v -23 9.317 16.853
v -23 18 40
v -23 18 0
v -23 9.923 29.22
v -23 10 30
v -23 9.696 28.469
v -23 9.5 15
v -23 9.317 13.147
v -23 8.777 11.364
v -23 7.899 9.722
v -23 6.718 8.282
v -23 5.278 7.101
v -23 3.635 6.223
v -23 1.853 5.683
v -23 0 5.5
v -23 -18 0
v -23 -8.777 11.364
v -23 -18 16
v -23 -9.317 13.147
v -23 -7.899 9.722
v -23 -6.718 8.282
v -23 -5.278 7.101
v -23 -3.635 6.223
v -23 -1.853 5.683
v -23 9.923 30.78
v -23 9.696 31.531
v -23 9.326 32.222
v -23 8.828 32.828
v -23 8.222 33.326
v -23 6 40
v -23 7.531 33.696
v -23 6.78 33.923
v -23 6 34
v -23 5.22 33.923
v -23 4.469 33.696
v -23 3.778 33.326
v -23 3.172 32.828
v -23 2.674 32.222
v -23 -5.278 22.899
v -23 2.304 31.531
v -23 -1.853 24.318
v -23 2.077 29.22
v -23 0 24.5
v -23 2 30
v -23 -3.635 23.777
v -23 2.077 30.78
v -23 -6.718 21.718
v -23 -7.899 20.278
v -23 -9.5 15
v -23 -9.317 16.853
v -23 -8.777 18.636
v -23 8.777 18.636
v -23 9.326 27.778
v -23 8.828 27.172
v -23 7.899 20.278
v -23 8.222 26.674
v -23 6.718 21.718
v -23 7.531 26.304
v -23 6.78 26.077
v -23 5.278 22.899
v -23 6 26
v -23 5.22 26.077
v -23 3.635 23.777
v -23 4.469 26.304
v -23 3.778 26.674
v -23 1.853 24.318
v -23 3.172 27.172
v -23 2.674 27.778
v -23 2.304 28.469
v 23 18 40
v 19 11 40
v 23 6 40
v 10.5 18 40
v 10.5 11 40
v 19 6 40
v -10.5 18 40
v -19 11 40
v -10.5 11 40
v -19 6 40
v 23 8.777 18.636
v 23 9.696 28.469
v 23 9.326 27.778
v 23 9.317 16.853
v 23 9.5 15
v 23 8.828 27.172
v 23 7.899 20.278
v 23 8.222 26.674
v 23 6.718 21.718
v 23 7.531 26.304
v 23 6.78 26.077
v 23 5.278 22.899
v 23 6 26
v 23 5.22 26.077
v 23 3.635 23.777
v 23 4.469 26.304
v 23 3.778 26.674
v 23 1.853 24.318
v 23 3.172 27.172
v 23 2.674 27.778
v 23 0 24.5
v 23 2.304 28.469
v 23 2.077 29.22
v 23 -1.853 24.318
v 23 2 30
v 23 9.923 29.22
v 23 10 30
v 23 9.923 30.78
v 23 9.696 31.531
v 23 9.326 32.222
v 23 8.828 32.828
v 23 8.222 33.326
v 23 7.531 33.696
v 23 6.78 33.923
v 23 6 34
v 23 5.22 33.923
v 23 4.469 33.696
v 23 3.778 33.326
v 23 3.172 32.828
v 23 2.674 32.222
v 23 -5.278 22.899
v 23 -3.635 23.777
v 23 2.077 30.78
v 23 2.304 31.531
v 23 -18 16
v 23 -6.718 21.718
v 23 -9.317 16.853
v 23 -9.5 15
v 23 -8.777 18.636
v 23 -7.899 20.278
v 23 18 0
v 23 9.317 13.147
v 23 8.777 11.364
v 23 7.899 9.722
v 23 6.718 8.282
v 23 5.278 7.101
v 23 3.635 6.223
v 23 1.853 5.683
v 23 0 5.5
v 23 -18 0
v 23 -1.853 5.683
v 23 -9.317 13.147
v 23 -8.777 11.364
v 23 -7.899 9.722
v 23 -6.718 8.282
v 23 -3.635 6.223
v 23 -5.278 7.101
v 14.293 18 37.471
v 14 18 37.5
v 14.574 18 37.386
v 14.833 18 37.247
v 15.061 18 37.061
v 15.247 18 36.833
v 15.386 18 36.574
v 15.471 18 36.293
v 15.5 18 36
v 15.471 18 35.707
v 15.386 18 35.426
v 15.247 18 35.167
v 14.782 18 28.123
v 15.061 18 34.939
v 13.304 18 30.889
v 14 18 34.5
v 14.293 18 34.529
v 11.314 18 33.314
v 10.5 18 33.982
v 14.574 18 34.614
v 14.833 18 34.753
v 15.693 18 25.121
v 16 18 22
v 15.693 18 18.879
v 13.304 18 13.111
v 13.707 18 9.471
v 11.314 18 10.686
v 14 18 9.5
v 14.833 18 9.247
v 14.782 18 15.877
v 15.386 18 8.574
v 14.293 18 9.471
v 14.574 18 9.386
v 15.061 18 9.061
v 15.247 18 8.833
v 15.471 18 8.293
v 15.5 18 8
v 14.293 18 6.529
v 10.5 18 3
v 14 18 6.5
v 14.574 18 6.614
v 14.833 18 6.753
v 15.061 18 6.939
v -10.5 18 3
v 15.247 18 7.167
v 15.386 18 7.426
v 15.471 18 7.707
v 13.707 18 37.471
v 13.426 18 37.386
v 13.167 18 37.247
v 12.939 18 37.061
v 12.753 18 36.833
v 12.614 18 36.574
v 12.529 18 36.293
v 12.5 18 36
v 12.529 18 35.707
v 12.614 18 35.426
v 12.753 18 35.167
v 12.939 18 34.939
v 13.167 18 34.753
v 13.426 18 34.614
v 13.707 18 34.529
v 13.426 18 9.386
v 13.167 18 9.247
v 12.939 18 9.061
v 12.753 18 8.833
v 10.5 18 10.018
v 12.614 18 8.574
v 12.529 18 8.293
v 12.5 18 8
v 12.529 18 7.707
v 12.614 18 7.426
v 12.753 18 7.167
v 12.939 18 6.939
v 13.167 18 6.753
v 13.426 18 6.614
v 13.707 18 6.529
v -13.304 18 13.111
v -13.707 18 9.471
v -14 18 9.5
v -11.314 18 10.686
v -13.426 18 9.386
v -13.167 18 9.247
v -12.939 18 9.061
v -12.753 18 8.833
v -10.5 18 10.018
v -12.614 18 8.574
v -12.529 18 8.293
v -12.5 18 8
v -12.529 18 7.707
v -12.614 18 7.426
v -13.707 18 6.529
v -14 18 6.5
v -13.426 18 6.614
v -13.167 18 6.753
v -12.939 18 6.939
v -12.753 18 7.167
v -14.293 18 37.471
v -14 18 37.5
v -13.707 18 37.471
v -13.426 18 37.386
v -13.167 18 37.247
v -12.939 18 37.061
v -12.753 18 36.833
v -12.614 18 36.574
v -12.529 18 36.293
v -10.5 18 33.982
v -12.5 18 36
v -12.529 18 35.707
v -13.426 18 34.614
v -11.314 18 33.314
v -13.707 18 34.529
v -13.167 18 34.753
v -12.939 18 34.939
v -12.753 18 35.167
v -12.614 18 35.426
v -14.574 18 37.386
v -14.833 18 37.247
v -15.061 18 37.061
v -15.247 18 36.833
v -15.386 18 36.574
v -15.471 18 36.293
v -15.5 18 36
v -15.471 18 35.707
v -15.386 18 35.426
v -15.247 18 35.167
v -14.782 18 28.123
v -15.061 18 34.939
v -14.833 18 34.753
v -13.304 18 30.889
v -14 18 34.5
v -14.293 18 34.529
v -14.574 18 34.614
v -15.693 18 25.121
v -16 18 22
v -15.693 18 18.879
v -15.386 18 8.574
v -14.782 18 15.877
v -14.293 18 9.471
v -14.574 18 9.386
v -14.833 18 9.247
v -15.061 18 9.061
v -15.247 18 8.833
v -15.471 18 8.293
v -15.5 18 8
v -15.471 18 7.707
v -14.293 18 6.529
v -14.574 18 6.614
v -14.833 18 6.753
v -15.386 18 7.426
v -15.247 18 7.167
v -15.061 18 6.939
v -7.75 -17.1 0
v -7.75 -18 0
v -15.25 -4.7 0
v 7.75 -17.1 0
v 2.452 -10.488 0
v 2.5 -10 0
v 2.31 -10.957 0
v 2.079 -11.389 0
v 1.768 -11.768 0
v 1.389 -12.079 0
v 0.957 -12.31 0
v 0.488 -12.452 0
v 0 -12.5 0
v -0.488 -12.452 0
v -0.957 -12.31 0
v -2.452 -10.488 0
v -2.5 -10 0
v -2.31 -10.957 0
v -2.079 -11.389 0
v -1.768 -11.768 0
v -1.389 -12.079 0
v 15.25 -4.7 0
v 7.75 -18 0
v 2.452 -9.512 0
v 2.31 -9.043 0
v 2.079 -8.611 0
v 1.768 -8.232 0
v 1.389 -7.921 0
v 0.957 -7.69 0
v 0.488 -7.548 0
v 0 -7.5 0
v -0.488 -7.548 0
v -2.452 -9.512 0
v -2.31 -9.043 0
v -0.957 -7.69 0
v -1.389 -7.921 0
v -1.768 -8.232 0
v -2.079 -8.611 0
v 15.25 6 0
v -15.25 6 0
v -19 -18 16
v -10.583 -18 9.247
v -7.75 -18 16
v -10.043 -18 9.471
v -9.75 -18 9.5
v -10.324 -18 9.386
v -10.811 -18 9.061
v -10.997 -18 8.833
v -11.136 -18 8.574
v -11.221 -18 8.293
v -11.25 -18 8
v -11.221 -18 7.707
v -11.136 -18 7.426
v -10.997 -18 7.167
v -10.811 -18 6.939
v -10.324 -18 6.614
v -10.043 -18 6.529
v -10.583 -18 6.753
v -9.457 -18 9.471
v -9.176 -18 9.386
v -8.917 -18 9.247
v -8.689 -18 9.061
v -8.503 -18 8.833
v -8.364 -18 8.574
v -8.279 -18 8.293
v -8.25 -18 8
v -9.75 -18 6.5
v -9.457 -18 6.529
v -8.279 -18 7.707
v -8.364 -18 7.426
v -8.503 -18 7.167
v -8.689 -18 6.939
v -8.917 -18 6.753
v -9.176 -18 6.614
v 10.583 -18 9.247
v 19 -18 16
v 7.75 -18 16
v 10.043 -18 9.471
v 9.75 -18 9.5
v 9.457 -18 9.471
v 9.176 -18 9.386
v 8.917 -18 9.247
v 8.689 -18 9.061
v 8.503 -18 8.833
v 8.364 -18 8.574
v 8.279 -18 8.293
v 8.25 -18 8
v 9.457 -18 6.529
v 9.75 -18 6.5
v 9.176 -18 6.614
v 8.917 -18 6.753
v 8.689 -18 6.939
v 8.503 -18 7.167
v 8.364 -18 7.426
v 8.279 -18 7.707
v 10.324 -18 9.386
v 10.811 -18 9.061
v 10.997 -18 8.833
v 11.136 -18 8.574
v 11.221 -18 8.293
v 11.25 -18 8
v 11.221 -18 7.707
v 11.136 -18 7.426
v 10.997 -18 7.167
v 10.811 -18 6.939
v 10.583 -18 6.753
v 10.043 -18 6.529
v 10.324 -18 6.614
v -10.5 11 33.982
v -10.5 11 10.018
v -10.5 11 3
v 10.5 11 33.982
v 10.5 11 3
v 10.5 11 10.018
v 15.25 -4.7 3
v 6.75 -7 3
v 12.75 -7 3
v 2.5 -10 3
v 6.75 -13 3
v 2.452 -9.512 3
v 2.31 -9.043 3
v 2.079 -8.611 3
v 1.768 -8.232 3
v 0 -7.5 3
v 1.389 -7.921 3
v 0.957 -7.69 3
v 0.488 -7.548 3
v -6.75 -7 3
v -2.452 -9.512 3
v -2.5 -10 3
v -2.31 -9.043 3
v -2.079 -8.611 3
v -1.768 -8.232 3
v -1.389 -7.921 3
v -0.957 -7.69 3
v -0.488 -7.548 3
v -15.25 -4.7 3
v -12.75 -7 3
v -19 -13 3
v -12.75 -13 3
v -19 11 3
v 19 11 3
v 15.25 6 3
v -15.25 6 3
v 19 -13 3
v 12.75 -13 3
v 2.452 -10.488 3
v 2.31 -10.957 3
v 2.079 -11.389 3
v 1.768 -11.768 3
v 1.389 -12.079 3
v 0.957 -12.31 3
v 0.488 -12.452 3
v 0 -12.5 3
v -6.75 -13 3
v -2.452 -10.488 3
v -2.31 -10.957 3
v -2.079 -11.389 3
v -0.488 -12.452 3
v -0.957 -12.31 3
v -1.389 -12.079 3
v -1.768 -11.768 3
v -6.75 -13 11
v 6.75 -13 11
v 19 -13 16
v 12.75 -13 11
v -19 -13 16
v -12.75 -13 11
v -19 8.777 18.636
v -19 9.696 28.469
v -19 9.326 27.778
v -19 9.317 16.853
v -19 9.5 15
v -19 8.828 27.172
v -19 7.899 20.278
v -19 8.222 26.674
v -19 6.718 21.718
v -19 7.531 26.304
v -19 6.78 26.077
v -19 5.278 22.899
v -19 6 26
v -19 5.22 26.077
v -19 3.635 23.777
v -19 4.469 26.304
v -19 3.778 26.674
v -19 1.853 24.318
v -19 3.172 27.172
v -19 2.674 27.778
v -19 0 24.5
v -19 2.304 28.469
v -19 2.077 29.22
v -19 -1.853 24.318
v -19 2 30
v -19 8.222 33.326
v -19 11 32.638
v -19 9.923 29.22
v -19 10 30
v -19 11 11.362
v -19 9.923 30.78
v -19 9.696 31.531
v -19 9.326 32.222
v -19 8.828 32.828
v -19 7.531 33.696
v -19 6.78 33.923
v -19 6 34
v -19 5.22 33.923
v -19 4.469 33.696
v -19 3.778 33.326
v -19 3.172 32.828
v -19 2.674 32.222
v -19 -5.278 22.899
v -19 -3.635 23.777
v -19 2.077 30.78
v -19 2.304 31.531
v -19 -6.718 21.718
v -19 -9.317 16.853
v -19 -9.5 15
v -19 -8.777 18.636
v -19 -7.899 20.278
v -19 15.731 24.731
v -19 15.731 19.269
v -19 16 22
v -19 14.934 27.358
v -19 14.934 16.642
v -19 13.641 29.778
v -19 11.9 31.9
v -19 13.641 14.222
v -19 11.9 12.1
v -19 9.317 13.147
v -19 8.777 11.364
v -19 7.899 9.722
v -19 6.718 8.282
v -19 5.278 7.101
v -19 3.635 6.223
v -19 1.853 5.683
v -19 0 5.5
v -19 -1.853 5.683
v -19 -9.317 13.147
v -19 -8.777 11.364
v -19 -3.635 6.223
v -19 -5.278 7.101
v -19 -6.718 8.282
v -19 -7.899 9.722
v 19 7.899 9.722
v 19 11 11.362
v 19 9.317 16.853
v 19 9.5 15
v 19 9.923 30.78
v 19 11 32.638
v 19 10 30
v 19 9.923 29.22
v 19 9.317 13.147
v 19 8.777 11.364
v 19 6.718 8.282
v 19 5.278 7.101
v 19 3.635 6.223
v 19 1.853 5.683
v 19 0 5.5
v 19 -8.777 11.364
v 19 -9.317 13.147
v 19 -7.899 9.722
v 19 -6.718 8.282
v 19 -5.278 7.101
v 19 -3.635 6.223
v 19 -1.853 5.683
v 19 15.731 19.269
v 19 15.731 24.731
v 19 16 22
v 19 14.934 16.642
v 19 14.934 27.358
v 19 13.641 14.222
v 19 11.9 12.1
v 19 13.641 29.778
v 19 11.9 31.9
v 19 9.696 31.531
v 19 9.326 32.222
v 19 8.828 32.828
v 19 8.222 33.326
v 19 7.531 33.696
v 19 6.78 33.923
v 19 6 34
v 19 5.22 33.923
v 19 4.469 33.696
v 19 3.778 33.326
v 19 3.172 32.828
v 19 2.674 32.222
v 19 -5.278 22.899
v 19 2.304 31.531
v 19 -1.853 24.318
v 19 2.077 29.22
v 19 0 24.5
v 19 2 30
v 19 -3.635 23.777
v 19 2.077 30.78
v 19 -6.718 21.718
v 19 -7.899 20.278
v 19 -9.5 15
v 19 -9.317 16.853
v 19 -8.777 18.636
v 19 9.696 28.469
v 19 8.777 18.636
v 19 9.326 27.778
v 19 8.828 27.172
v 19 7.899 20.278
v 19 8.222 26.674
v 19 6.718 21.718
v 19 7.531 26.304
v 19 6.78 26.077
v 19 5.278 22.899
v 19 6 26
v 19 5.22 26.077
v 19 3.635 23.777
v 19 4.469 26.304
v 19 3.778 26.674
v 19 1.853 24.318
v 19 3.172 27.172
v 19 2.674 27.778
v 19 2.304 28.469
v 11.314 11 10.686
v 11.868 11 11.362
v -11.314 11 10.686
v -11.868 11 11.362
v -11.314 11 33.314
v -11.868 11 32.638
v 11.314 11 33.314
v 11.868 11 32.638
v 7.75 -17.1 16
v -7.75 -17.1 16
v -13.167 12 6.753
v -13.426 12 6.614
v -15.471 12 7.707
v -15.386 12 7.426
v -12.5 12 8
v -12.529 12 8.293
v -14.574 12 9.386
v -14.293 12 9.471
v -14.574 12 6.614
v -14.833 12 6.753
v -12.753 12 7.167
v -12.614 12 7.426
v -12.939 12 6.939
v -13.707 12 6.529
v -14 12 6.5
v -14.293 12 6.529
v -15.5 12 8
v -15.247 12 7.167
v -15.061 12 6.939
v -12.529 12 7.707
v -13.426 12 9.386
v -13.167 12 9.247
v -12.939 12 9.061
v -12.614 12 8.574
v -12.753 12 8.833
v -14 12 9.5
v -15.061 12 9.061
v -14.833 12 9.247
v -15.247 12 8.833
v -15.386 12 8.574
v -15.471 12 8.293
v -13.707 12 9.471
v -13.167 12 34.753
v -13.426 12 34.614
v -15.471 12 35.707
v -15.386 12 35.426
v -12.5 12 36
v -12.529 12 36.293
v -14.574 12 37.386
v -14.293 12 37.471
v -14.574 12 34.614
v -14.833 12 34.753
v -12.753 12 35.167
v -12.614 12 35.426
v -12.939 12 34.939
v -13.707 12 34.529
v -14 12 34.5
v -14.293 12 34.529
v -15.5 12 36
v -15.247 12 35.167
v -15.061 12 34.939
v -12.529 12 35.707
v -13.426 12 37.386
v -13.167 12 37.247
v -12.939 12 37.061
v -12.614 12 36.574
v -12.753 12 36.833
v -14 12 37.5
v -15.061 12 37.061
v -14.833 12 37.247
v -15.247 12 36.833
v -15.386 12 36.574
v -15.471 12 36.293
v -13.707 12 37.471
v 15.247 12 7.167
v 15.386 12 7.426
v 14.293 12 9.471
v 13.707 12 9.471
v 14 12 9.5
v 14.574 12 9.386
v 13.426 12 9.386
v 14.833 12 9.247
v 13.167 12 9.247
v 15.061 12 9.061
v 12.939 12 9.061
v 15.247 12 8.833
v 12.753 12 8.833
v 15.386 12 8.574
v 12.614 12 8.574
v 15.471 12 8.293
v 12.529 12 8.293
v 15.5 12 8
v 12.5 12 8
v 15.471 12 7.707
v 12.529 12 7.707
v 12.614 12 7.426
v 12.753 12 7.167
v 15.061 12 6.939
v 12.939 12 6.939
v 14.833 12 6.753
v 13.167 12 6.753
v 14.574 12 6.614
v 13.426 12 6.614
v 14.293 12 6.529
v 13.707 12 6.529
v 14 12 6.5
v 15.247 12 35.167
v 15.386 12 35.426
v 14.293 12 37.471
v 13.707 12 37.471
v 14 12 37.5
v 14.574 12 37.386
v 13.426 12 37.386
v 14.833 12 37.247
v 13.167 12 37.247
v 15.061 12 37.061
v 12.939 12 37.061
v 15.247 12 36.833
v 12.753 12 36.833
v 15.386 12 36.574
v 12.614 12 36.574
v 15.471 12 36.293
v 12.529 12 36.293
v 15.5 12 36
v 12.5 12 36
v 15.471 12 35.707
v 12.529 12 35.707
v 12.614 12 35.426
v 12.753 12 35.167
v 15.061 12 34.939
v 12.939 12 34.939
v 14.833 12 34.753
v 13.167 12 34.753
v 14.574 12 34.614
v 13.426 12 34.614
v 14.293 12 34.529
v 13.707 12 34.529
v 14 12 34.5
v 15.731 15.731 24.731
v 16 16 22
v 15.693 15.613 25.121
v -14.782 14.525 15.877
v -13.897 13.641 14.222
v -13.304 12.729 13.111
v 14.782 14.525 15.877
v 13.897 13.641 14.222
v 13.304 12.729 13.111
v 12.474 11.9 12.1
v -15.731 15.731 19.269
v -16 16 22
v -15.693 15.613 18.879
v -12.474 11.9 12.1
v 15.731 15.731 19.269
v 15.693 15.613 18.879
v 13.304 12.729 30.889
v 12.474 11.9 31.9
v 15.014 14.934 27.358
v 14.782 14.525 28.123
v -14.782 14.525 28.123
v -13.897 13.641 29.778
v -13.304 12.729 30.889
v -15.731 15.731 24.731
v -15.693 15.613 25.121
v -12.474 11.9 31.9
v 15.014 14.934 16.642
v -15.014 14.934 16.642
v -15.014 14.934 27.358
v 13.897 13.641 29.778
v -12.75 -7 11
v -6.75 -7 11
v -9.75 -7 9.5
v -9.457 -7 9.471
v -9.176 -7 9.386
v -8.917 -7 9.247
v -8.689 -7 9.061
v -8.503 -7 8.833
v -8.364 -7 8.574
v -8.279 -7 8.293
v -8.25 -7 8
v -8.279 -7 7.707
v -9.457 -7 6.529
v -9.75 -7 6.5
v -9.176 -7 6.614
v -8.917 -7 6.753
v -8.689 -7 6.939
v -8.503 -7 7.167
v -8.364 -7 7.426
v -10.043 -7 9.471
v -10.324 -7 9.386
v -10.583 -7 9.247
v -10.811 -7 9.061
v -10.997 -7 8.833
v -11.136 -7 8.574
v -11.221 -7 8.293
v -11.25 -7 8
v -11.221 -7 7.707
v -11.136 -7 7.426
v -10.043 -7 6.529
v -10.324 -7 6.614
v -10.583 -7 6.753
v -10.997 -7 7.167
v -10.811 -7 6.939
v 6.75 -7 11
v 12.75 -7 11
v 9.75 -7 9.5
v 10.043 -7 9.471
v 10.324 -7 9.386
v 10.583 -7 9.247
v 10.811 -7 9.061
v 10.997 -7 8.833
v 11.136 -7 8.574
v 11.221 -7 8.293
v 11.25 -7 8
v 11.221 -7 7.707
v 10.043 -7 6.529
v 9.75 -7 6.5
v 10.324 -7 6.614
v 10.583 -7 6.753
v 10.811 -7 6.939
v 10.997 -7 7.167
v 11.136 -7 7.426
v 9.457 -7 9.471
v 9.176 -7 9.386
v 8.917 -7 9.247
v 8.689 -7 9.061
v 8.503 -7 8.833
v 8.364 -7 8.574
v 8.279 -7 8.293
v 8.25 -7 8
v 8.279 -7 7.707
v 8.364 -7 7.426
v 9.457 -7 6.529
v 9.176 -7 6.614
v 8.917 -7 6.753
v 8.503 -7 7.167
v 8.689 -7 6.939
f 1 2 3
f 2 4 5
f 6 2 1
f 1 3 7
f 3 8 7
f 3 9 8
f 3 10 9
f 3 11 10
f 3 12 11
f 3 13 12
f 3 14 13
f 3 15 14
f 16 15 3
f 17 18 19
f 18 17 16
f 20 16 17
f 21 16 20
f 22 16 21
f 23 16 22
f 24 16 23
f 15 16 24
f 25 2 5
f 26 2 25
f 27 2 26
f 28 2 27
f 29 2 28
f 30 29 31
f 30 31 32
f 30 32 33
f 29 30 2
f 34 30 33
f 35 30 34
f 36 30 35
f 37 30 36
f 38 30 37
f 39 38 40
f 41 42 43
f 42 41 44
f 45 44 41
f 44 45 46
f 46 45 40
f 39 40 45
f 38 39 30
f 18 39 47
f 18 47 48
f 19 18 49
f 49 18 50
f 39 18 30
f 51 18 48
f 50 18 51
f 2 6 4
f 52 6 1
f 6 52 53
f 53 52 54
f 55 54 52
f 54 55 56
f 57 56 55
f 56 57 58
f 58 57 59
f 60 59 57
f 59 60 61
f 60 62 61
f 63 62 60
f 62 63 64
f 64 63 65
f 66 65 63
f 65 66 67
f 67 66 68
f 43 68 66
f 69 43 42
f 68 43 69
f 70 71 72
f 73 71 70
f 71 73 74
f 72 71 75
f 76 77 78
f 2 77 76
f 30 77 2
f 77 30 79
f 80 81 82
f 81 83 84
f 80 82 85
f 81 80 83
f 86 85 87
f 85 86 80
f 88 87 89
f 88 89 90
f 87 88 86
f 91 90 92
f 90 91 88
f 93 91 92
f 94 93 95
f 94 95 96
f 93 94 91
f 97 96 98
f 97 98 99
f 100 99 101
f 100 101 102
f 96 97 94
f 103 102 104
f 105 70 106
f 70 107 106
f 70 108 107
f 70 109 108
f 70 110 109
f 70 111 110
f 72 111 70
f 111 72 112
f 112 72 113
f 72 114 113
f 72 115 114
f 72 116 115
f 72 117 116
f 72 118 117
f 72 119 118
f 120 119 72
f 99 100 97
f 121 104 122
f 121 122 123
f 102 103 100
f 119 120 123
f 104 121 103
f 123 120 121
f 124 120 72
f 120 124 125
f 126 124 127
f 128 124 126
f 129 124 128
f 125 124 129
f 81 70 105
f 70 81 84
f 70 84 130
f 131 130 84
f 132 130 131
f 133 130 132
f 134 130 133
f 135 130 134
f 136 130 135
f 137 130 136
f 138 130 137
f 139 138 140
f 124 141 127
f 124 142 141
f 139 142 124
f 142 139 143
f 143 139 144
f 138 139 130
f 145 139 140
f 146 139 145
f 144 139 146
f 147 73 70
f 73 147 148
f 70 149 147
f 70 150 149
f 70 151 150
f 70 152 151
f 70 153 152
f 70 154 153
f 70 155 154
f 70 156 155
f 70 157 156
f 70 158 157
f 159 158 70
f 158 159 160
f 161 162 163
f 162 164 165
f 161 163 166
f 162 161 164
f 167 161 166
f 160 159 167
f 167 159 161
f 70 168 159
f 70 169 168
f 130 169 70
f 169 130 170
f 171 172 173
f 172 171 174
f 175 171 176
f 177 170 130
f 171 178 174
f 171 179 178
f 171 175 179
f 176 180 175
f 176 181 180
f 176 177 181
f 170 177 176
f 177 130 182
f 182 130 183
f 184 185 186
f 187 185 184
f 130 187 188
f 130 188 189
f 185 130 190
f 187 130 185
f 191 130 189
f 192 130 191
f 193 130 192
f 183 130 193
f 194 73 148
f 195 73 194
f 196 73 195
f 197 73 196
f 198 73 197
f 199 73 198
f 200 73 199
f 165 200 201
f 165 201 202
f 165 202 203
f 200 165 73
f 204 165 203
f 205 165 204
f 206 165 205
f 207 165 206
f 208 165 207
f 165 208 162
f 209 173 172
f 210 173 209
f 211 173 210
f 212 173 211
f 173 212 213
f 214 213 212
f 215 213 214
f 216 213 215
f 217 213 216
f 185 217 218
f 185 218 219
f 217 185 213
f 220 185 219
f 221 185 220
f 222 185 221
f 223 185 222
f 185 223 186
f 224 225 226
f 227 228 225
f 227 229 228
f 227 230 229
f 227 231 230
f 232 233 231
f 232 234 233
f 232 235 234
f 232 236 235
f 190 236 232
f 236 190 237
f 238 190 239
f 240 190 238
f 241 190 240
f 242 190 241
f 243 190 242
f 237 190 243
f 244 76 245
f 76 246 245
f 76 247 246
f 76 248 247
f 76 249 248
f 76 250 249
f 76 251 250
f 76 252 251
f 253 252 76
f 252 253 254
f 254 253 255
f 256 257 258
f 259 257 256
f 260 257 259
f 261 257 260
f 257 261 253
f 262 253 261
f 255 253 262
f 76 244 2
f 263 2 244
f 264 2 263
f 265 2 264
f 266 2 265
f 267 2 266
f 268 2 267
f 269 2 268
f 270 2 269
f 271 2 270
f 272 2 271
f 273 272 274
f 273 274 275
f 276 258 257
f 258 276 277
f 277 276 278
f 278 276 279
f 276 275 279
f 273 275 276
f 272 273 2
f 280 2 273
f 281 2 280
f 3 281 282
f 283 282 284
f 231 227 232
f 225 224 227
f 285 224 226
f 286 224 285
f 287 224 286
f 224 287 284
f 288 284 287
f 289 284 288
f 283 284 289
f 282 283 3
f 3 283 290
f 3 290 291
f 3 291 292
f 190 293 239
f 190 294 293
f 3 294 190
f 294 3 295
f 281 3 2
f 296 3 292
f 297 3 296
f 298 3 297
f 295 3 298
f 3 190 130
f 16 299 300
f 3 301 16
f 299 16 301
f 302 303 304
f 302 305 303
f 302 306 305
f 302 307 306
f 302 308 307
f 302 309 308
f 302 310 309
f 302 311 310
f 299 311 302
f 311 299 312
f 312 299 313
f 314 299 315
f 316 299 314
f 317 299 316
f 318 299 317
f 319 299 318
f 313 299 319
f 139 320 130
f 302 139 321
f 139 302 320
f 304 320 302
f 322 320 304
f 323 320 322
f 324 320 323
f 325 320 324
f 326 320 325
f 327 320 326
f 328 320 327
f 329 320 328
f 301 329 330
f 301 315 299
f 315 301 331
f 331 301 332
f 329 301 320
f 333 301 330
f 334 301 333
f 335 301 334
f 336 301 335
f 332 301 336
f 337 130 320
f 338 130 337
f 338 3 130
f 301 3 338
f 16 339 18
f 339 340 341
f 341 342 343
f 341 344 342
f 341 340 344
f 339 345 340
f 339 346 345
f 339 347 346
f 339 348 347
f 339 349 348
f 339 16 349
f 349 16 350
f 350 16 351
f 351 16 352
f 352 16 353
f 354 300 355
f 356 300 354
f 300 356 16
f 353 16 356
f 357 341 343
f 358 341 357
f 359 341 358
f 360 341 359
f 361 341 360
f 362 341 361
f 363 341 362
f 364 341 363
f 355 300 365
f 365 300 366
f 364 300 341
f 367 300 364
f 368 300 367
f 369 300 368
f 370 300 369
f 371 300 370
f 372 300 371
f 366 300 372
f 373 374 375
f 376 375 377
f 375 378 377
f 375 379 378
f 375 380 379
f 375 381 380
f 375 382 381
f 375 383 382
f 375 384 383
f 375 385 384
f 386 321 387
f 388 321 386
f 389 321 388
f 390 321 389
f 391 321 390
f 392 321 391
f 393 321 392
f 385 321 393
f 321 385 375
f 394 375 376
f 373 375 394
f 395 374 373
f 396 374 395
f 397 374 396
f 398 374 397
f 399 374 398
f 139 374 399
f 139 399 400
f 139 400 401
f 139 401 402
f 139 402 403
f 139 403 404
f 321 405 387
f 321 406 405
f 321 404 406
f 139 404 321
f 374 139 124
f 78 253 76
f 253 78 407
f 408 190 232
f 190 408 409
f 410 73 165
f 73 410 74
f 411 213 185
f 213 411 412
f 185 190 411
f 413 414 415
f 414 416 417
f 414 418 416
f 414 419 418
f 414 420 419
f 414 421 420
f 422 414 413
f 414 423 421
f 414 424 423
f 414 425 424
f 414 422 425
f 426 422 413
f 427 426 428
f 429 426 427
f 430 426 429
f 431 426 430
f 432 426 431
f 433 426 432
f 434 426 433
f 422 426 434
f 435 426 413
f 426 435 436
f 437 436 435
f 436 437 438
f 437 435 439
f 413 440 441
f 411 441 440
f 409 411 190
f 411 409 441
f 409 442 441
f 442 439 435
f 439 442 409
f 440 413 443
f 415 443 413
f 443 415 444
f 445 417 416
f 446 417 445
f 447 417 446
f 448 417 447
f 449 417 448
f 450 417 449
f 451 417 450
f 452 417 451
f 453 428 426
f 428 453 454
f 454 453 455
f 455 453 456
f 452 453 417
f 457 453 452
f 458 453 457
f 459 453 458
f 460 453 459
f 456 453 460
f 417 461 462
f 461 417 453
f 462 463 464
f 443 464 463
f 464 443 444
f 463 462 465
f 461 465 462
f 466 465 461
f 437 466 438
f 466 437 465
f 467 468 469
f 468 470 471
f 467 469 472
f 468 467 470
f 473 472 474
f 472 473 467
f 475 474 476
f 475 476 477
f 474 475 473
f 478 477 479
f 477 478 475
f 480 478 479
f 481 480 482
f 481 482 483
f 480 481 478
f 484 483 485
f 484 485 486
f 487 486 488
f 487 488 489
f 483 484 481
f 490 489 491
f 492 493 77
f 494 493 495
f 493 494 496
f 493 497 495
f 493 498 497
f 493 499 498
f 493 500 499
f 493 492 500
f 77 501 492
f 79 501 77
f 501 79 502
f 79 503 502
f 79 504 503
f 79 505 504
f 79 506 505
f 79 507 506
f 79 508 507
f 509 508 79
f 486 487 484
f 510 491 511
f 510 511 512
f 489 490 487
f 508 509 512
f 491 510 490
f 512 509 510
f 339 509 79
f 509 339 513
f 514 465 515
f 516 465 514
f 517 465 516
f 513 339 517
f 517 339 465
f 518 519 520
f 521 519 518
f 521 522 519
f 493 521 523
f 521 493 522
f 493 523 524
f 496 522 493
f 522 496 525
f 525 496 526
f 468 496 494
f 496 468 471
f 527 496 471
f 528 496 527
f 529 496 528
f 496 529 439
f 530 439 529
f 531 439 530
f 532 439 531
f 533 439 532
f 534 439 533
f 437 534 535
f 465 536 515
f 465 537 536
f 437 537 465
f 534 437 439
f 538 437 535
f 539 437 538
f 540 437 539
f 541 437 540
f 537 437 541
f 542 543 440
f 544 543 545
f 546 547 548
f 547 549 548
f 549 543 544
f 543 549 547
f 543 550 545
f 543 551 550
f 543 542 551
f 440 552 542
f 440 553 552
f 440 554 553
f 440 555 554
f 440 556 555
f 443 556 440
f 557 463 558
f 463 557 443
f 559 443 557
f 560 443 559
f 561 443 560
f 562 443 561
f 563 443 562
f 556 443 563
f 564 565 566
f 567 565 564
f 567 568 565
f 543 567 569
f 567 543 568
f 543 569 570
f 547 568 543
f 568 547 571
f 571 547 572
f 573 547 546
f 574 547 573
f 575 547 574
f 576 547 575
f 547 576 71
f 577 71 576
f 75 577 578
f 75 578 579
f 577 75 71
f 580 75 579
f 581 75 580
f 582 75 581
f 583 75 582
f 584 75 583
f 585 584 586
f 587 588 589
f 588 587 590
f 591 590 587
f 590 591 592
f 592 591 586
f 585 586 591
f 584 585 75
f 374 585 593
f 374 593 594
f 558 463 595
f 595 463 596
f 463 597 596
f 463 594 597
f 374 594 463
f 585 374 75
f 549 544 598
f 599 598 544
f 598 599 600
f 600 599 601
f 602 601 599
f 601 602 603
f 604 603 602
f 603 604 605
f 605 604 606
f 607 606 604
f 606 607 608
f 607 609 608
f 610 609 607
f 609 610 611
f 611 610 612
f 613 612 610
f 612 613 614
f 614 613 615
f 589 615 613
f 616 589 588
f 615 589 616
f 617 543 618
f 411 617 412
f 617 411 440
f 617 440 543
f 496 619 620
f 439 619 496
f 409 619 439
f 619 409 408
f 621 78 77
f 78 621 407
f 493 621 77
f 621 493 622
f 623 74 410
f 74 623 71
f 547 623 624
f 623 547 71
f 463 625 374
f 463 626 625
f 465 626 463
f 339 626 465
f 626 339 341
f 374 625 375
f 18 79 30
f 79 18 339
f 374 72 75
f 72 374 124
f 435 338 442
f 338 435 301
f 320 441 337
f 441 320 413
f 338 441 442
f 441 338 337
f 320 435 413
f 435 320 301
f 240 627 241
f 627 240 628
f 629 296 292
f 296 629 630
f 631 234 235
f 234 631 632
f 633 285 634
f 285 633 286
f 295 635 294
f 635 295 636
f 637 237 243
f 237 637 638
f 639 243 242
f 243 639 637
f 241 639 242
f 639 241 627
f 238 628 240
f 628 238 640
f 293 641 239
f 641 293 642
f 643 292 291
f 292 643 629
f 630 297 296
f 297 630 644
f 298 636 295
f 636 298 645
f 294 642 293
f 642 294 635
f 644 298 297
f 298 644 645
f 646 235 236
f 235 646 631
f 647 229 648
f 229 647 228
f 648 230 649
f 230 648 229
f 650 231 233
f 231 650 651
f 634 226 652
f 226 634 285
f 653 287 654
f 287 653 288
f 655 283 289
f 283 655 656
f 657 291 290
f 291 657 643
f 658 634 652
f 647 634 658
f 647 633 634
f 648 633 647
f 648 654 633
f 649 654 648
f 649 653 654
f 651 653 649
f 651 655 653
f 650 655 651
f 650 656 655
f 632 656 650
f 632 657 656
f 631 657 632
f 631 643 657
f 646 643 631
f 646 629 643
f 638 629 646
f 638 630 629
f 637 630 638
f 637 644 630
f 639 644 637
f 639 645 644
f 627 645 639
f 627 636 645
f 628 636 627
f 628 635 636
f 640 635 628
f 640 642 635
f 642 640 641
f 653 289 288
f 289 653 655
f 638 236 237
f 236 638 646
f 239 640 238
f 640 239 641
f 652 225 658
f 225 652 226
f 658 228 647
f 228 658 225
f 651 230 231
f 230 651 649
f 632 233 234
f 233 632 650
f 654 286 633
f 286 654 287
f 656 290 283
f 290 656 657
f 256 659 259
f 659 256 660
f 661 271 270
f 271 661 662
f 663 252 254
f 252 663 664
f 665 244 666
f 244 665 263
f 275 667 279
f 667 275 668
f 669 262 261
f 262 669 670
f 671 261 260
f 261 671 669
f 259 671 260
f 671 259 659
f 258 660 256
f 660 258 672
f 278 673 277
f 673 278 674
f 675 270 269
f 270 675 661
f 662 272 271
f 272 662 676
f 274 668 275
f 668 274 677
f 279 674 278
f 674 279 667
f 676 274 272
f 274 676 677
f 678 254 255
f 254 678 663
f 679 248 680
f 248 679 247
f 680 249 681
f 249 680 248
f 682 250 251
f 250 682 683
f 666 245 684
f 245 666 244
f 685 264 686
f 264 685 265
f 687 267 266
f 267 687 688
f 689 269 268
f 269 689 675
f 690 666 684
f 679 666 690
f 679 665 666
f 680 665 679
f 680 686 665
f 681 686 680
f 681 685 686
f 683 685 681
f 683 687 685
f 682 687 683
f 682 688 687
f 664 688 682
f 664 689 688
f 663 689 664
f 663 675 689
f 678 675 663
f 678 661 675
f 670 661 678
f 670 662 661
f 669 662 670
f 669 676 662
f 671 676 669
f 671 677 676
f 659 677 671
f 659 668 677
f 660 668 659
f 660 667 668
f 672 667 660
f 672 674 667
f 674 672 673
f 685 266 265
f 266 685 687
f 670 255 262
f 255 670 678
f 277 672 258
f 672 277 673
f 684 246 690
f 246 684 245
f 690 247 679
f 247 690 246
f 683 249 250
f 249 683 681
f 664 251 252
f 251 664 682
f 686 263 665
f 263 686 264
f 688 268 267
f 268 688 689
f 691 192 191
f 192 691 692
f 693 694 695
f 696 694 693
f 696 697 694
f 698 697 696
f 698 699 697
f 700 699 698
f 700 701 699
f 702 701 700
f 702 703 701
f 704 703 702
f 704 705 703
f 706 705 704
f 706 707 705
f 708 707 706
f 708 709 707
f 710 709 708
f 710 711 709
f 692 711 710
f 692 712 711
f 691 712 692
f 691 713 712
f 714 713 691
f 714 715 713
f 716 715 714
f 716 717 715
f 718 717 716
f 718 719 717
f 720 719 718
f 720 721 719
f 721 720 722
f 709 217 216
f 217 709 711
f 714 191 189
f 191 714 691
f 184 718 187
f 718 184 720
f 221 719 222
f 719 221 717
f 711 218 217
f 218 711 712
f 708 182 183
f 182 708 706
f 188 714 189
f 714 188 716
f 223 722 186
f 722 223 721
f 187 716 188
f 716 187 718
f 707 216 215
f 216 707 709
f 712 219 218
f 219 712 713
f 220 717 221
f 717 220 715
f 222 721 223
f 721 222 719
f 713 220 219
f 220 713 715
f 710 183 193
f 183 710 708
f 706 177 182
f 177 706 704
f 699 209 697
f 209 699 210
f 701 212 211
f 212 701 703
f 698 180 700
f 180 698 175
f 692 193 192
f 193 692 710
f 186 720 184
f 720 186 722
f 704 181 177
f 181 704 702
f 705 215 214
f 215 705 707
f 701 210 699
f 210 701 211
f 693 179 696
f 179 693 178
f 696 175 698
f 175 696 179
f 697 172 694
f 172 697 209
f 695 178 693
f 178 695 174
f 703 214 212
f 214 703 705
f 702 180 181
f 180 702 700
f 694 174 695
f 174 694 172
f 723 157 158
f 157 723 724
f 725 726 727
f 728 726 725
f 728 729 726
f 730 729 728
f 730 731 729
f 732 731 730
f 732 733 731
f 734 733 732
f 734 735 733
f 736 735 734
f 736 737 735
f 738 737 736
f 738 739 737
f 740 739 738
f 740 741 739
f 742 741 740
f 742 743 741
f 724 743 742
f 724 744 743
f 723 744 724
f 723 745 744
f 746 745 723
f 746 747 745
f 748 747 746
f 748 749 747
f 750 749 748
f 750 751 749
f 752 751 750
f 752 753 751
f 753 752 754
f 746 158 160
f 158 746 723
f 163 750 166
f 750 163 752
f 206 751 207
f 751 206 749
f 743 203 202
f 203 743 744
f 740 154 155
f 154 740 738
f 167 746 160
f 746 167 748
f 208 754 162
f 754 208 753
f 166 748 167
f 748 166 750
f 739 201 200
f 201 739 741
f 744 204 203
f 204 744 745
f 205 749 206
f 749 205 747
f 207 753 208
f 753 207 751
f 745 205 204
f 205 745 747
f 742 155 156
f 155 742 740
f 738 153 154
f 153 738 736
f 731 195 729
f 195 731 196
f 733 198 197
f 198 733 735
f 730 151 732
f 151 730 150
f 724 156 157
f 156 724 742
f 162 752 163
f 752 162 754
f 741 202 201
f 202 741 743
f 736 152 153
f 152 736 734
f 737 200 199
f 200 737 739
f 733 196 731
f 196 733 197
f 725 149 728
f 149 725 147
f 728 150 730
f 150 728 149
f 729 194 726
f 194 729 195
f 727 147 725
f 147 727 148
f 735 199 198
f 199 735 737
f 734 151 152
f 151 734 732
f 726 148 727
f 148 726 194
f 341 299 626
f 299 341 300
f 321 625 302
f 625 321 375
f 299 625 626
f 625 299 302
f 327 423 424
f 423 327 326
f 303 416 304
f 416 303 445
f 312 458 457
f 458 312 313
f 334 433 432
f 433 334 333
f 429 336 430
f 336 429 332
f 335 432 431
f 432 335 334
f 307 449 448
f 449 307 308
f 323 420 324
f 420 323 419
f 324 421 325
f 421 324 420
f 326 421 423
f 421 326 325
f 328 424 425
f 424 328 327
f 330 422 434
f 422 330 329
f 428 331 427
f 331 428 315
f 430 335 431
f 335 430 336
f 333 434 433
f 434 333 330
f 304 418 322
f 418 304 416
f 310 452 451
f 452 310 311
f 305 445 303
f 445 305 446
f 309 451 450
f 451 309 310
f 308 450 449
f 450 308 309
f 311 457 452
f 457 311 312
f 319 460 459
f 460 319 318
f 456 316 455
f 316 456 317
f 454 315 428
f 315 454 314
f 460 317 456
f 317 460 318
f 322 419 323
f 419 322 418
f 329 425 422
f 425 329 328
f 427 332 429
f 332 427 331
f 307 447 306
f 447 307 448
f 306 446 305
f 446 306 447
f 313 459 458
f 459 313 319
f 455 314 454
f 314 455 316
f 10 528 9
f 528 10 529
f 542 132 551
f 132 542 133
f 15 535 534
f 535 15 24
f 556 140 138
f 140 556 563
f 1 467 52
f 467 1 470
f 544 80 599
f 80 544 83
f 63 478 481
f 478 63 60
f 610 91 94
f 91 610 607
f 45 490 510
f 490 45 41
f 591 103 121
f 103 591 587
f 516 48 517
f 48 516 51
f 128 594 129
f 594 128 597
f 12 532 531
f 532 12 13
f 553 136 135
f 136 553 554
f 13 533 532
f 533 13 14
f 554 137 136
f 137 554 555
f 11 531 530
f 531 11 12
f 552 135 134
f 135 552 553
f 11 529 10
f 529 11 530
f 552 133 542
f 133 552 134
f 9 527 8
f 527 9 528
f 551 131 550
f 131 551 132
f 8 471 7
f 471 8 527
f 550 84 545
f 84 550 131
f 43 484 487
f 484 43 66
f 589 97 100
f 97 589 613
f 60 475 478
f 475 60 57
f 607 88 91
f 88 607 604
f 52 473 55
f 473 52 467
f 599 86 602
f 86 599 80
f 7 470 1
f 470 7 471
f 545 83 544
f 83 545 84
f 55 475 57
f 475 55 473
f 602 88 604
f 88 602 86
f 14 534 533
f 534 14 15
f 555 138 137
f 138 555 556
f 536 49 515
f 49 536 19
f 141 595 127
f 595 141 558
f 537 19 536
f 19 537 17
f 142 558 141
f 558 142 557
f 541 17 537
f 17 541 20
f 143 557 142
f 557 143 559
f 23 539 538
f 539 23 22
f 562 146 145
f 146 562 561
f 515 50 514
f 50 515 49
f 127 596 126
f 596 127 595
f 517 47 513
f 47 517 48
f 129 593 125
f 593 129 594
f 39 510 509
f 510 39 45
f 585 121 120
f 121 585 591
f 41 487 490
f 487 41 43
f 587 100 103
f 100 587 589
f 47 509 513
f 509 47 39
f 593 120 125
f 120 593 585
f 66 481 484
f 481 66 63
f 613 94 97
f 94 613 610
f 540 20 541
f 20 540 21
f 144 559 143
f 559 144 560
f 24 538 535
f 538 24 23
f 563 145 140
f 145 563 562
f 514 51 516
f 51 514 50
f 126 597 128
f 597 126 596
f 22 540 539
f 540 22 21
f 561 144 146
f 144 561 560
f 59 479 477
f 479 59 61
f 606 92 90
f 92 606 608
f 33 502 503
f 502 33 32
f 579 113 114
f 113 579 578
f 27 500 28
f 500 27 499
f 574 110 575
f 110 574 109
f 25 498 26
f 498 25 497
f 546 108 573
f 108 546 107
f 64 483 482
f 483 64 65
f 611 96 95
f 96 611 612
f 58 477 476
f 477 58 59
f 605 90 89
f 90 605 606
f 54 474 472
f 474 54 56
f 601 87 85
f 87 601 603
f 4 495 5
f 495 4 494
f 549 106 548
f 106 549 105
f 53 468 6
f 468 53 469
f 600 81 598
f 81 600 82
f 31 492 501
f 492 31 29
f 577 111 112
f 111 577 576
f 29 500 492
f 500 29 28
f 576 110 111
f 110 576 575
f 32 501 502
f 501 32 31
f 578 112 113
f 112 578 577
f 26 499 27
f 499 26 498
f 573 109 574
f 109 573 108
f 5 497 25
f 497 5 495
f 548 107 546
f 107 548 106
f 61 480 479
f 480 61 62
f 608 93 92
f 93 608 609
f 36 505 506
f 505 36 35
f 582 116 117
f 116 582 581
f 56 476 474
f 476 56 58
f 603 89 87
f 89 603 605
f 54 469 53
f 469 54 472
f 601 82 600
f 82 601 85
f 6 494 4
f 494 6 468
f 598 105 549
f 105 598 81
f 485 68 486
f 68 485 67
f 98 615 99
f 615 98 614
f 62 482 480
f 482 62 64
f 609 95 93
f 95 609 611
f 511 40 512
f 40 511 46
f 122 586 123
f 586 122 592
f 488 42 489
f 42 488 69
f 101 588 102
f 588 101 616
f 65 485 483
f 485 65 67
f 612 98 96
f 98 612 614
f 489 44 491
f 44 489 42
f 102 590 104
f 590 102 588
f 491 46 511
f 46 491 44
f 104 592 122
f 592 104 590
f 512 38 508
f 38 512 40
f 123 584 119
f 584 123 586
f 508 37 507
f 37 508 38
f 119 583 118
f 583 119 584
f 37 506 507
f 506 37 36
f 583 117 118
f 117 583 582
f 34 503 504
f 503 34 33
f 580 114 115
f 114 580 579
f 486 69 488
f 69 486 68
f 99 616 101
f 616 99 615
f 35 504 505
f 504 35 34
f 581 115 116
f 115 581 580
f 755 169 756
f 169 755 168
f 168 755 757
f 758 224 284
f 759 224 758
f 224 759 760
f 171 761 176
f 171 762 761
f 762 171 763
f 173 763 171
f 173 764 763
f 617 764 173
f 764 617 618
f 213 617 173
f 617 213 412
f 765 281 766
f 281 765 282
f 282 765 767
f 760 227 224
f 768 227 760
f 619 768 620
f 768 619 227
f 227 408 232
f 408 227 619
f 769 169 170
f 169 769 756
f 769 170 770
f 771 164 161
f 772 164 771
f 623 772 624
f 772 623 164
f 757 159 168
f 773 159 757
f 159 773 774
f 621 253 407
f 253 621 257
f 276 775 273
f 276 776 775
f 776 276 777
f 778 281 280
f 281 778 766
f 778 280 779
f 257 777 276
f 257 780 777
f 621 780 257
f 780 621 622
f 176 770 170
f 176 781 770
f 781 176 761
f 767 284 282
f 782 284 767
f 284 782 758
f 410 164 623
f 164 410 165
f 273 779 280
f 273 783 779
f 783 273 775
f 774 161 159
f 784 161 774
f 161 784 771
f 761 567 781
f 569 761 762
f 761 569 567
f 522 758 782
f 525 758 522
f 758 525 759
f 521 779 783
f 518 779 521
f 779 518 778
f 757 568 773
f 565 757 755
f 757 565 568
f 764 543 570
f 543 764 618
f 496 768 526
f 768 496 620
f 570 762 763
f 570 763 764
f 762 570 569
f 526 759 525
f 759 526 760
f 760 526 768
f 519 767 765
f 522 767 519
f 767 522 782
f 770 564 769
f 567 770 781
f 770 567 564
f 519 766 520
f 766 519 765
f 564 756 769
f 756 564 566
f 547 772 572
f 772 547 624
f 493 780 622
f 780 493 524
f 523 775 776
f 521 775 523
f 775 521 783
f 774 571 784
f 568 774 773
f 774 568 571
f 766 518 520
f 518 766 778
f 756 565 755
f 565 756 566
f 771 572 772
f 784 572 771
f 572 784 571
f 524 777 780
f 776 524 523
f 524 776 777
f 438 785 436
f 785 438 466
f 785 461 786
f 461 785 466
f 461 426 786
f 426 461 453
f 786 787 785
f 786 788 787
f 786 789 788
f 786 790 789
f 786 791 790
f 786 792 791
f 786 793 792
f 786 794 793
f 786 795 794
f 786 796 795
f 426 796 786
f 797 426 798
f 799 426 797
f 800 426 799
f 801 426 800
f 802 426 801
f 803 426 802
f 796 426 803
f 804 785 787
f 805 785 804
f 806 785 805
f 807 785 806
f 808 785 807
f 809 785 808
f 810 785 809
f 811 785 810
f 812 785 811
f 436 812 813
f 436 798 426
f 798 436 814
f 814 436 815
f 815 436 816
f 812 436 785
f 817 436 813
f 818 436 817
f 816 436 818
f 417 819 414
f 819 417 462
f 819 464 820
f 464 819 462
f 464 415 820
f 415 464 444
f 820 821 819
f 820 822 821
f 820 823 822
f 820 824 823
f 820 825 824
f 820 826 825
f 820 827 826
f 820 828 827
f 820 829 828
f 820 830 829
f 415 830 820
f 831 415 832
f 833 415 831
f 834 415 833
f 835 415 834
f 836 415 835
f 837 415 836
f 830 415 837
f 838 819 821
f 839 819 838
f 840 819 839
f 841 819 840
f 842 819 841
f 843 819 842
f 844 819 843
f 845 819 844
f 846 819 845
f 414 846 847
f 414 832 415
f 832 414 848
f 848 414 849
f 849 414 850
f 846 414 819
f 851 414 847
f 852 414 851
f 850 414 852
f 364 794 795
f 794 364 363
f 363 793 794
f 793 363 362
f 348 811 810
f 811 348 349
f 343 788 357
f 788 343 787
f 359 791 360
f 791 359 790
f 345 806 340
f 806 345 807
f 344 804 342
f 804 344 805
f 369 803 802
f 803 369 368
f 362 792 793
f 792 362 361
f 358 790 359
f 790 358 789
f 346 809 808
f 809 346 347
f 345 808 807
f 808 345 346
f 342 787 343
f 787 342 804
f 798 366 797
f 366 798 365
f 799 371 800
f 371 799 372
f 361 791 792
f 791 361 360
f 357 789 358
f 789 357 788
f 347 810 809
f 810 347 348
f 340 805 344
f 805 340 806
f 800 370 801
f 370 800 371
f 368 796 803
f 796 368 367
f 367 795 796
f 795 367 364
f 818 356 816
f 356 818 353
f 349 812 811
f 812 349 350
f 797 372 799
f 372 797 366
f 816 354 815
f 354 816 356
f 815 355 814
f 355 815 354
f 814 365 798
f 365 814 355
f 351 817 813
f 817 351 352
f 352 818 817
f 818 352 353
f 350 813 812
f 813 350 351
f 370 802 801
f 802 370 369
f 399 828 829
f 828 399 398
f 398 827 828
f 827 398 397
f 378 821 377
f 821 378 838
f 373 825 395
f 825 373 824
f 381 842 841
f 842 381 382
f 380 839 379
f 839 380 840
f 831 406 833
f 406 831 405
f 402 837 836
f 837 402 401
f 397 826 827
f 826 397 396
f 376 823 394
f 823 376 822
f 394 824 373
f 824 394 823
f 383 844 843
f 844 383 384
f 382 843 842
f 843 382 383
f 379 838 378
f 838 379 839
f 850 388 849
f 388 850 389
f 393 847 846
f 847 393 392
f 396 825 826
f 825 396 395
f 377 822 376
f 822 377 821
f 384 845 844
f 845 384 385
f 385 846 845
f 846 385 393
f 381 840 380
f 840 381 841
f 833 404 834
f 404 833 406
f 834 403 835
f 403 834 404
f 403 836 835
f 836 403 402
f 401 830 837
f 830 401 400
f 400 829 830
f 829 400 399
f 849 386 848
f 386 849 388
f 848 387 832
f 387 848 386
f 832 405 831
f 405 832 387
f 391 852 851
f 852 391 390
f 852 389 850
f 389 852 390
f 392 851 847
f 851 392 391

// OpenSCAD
//OpenSCAD-Skript

//Moduldefinition mit Parametern
module Adapt (
//Parameter
lngth1=46,lngth2=36,hght=46,br=15,d1=3,d2=8, gap=15.5,dpth=1,dia1=3.0,cutl=30.5,cutw=10.7)
//Beginn Modul
{
difference(){   //difference 1
union(){        //union 1
difference(){   //difference 2
union(){        //union 2
    //alles, was vor der nächsten geschweiften Klammer steht, wird zusammengefügt (union 2)
//Block
translate([-lngth1/2, -lngth2/2, 0])
cube([lngth1, lngth2, hght-6]);

}               //union 2 end
    //alles, was vor der nächsten geschweiften Klammer steht, wird davon abgezogen (difference 2)
//Cutout Block
translate([-lngth1/2+12.5, -lngth2/2+5, d1]) cube([lngth1-25, lngth2, hght]);
translate([-lngth1/2+4, -lngth2/2+5, d1]) cube([lngth1-8, lngth2-12, hght]);
translate([-lngth1/2+4, -lngth2/2-5, 16]) cube([lngth1-8, lngth2-12, 16]);
//Anschnitt
translate([-lngth1/2-2, -lngth2/2, 16]) rotate([45,0,0]) cube([lngth1+10, lngth2+40, hght]);
//Schalter
translate([-cutl/2, lngth2/2-12-cutw, -0.1]) cube([cutl, cutw, 25]);
//Schraubenlöcher
translate([-14,12,8]) rotate([-90,0,0]) cylinder(d=dia1,h=50,$fn=32);
translate([-14,12,8+28]) rotate([-90,0,0]) cylinder(d=dia1,h=50,$fn=32);
translate([14,12,8]) rotate([-90,0,0]) cylinder(d=dia1,h=50,$fn=32);
translate([14,12,8+28]) rotate([-90,0,0]) cylinder(d=dia1,h=50,$fn=32);
//Schienennut
translate([-gap/2, -lngth2/2-0.1, -0.1])
cube([gap, dpth, 24]);
//LED
translate([0,-10,-0.1]) cylinder(d=5,h=10,$fn=32);
//Materialsparen
translate([-50,0,15]) rotate([0,90,0]) cylinder(d=19,h=200,$fn=32);
translate([-50,6,30]) rotate([0,90,0]) cylinder(d=8,h=200,$fn=32);
translate([0,0,hght/2-1]) rotate([-90,0,0]) cylinder(d=32,h=200,$fn=32);
translate([-lngth1/2+4,2,hght/2-1]) rotate([0,90,0]) cylinder(d=28,h=lngth1-8,$fn=32);
}  //difference 2 end
    //alles, was vor der nächsten geschweiften Klammer steht, wird dazu hinzugefügt (union 1)
//Klötzchen
translate([-gap/2-5, -lngth2/2+3, 3])
cube([6, 8, 8]);
translate([gap/2-1, -lngth2/2+3, 3])
cube([6, 8, 8]);

}               //union 1 end
    //alles, was vor der nächsten geschweiften Klammer steht, wird davon wieder abgezogen (difference 1)
//Schraubenlöcher
translate([-gap/2-2,0,8]) rotate([90,0,0]) cylinder(d=dia1,h=50,$fn=32);
translate([gap/2+2,0,8]) rotate([90,0,0]) cylinder(d=dia1,h=50,$fn=32);
}               //difference 1 end

}  //module end

//Hier werden Instanzen des Moduls aufgerufen
translate([0,0,0]) Adapt();
